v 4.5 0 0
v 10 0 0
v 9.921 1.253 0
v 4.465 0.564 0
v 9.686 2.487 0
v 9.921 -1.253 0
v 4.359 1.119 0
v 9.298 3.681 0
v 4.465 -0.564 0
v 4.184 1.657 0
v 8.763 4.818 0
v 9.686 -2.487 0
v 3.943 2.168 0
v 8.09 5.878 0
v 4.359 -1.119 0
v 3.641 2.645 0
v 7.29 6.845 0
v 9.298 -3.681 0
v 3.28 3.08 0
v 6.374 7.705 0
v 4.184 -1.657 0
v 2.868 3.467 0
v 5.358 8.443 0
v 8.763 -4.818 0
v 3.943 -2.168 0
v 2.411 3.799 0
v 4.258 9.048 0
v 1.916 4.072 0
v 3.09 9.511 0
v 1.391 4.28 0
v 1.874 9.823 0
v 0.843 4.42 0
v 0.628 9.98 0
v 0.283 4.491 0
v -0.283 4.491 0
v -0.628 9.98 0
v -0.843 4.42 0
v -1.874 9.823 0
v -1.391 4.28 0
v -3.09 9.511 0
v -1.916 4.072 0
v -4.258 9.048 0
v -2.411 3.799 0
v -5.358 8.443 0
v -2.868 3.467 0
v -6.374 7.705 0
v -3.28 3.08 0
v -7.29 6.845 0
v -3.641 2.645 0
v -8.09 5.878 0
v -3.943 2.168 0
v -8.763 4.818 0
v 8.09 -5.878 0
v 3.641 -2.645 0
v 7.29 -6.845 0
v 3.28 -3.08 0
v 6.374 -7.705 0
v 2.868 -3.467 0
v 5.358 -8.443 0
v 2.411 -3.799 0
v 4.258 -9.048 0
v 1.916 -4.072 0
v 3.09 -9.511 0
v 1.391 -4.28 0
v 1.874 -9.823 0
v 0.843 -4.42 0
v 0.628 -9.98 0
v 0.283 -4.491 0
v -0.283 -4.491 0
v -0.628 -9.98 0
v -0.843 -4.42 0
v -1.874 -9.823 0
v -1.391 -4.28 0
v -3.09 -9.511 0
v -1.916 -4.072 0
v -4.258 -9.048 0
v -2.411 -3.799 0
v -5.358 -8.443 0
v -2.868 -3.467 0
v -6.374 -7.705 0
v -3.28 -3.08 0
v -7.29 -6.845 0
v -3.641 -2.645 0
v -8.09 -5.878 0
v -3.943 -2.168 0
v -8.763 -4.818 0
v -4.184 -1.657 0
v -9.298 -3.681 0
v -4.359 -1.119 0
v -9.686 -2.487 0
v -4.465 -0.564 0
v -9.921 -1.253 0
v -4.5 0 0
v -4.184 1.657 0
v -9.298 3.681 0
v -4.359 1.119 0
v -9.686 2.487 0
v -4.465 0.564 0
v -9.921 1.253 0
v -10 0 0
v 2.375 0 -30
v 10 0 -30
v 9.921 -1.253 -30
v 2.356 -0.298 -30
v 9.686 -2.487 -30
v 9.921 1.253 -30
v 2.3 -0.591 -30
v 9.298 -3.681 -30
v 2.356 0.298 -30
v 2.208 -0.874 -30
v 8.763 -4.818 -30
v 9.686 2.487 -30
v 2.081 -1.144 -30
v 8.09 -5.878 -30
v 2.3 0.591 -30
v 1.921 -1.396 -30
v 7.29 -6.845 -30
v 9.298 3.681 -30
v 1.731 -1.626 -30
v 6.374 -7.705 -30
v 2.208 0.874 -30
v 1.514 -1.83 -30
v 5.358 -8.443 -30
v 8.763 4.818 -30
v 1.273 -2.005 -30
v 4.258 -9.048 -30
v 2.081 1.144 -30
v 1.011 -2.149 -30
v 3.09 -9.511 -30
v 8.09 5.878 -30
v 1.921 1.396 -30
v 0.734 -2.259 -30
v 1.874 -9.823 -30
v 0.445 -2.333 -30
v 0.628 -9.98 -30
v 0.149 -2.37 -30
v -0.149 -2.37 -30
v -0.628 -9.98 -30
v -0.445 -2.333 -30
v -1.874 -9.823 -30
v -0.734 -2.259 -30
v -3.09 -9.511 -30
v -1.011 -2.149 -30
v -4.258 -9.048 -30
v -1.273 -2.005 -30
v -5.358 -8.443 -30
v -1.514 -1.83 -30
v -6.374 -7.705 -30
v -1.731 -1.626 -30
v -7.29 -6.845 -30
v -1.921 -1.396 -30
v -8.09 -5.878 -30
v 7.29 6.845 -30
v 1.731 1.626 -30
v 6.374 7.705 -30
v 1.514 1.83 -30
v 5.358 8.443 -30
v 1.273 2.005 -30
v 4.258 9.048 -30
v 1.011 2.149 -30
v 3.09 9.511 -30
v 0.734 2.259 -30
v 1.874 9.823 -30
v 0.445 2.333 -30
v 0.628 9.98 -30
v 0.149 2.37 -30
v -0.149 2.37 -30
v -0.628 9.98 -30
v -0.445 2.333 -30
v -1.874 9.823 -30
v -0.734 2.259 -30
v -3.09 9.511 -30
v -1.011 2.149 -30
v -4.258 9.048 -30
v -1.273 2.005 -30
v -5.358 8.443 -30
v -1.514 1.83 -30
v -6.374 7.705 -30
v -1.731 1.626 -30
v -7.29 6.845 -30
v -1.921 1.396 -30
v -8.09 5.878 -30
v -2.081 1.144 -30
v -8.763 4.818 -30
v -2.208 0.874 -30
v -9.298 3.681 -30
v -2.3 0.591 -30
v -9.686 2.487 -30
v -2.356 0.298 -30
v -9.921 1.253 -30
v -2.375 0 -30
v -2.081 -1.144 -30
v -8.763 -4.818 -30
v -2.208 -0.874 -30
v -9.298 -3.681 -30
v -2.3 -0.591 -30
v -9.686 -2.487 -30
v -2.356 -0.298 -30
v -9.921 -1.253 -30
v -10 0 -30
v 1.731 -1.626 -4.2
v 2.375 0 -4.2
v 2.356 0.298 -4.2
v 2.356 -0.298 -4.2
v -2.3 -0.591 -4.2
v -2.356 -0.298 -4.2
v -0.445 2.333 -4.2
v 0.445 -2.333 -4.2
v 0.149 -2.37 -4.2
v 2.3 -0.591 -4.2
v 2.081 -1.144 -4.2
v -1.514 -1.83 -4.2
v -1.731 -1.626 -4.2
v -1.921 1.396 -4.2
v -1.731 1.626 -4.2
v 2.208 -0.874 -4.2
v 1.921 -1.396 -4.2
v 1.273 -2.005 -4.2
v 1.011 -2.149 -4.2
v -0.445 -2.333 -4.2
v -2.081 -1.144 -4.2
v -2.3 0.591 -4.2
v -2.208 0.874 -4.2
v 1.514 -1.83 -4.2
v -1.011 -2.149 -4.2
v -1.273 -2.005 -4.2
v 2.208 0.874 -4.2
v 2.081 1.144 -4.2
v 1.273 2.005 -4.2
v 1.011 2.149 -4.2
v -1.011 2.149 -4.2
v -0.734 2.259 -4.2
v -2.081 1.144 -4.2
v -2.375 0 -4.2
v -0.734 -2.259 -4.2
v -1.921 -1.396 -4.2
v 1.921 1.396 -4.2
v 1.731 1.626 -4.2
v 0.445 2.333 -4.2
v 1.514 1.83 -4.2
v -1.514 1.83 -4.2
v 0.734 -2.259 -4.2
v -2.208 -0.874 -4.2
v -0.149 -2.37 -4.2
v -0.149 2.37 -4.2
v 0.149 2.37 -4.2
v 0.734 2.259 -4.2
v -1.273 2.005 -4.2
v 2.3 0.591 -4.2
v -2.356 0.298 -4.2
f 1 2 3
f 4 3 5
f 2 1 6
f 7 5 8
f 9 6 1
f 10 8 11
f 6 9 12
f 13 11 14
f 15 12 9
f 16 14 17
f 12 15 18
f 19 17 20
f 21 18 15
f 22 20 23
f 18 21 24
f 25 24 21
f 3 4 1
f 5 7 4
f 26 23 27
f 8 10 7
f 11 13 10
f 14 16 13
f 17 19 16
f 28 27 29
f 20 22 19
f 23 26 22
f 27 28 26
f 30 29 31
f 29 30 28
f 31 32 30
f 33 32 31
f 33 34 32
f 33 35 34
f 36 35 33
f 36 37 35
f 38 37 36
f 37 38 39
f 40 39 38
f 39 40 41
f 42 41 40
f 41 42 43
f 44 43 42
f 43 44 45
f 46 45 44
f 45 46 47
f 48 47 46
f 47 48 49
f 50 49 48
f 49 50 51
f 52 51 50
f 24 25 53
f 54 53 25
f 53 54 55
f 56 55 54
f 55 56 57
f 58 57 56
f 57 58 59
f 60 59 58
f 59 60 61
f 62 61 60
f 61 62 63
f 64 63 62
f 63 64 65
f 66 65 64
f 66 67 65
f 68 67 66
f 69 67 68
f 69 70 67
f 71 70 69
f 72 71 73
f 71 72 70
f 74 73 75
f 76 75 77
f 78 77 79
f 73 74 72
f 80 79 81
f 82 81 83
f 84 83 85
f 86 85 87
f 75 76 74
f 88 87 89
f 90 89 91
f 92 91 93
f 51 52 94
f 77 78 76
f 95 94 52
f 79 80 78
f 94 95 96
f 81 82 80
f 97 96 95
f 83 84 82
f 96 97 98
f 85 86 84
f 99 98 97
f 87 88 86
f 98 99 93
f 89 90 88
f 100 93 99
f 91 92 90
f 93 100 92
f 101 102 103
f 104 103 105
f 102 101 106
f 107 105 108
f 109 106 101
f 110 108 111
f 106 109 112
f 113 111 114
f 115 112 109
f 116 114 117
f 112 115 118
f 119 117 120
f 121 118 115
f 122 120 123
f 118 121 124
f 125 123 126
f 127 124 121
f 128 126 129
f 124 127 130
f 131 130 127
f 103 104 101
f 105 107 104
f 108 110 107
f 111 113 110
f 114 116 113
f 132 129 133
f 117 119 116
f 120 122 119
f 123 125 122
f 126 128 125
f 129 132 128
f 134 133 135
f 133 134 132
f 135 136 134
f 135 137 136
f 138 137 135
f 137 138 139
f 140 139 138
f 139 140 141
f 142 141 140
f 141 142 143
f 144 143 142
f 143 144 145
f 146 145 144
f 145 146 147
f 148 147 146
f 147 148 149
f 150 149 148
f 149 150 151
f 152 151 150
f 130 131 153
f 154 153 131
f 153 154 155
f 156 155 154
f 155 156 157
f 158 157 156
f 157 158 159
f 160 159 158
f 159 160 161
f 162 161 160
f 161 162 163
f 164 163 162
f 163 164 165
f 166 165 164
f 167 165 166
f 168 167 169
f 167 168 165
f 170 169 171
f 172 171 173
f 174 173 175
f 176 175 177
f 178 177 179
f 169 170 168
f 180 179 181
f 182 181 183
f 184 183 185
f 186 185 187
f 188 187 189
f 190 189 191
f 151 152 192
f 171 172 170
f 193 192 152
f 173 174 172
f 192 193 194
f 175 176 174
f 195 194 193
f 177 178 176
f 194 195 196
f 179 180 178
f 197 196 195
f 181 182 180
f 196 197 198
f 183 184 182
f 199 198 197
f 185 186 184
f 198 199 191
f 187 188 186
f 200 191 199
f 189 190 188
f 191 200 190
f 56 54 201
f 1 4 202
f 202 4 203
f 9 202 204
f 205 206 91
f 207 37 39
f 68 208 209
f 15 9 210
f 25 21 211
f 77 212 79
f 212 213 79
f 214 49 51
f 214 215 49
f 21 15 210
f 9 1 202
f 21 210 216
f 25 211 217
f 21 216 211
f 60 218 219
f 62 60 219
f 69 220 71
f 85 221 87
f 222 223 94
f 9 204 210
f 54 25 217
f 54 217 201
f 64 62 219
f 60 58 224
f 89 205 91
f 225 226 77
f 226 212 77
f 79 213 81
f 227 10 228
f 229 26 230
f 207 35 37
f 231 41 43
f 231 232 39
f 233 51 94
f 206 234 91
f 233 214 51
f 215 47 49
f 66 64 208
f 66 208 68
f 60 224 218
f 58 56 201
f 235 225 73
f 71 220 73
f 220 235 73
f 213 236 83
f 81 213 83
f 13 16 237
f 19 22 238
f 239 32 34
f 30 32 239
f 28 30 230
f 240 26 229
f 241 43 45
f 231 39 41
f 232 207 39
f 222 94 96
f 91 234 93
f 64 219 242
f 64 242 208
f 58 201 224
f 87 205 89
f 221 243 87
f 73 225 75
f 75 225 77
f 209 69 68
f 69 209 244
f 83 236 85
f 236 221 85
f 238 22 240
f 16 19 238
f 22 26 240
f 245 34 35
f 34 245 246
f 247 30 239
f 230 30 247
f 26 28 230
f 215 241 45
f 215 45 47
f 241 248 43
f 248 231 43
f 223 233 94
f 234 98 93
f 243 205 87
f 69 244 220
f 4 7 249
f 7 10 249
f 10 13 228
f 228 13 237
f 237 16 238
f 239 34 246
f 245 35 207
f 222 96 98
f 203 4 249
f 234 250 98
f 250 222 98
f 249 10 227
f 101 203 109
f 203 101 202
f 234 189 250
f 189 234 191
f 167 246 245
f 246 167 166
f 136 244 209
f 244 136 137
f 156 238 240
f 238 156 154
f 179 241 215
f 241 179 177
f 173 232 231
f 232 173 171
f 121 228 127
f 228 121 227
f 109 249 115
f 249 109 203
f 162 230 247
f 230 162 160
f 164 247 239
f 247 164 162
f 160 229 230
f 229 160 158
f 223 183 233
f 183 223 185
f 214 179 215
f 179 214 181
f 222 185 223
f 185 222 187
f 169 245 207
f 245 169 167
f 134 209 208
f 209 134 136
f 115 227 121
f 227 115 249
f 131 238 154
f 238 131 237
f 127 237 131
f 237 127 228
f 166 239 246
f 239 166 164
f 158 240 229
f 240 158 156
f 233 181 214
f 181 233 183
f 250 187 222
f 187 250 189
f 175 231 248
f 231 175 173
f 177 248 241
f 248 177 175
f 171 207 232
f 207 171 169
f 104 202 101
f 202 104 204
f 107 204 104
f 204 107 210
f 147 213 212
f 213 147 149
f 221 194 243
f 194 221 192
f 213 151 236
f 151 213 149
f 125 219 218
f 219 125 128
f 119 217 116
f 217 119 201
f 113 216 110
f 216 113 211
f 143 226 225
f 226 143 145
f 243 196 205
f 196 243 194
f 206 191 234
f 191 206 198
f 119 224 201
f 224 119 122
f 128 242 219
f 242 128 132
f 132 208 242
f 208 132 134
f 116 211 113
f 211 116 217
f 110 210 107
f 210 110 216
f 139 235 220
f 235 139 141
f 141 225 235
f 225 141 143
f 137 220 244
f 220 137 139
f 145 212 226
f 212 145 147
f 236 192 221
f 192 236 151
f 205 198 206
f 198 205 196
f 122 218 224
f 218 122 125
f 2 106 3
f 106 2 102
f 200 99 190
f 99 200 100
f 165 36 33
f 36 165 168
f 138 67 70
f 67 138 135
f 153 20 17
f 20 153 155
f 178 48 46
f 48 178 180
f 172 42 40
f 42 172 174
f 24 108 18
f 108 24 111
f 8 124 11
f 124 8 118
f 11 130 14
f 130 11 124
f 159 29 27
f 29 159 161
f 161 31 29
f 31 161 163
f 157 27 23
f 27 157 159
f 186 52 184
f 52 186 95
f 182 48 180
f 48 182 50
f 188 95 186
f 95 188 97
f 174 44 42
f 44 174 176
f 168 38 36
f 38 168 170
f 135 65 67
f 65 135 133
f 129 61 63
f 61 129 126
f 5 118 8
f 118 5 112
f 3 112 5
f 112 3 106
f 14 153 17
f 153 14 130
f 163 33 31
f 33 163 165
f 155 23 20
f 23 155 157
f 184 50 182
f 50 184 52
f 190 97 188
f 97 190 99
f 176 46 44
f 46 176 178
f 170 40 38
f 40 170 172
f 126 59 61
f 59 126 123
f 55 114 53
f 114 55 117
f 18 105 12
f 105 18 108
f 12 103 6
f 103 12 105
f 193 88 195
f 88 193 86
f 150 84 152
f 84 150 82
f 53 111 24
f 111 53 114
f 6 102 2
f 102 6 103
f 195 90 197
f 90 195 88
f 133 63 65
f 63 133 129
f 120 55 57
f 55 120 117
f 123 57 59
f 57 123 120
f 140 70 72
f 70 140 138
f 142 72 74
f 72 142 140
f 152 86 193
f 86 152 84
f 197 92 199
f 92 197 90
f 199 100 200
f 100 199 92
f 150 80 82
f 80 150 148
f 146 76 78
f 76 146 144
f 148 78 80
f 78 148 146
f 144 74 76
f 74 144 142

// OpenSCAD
$fn = 50;


difference() {
	union() {
		translate(v = [0, 0, -30.0000000000]) {
			cylinder(h = 30, r = 10.0000000000);
		}
	}
	union() {
		translate(v = [0, 0, 0]) {
			rotate(a = [0, 0, 0]) {
				difference() {
					union() {
						#translate(v = [0, 0, -30.0000000000]) {
							cylinder(h = 30, r = 2.2500000000);
						}
						#translate(v = [0, 0, -4.2000000000]) {
							cylinder(h = 4.2000000000, r1 = 2.3750000000, r2 = 4.5000000000);
						}
						#translate(v = [0, 0, -30.0000000000]) {
							cylinder(h = 30, r = 2.3750000000);
						}
						#translate(v = [0, 0, -30.0000000000]) {
							cylinder(h = 30, r = 2.2500000000);
						}
					}
					union();
				}
			}
		}
	}
}
